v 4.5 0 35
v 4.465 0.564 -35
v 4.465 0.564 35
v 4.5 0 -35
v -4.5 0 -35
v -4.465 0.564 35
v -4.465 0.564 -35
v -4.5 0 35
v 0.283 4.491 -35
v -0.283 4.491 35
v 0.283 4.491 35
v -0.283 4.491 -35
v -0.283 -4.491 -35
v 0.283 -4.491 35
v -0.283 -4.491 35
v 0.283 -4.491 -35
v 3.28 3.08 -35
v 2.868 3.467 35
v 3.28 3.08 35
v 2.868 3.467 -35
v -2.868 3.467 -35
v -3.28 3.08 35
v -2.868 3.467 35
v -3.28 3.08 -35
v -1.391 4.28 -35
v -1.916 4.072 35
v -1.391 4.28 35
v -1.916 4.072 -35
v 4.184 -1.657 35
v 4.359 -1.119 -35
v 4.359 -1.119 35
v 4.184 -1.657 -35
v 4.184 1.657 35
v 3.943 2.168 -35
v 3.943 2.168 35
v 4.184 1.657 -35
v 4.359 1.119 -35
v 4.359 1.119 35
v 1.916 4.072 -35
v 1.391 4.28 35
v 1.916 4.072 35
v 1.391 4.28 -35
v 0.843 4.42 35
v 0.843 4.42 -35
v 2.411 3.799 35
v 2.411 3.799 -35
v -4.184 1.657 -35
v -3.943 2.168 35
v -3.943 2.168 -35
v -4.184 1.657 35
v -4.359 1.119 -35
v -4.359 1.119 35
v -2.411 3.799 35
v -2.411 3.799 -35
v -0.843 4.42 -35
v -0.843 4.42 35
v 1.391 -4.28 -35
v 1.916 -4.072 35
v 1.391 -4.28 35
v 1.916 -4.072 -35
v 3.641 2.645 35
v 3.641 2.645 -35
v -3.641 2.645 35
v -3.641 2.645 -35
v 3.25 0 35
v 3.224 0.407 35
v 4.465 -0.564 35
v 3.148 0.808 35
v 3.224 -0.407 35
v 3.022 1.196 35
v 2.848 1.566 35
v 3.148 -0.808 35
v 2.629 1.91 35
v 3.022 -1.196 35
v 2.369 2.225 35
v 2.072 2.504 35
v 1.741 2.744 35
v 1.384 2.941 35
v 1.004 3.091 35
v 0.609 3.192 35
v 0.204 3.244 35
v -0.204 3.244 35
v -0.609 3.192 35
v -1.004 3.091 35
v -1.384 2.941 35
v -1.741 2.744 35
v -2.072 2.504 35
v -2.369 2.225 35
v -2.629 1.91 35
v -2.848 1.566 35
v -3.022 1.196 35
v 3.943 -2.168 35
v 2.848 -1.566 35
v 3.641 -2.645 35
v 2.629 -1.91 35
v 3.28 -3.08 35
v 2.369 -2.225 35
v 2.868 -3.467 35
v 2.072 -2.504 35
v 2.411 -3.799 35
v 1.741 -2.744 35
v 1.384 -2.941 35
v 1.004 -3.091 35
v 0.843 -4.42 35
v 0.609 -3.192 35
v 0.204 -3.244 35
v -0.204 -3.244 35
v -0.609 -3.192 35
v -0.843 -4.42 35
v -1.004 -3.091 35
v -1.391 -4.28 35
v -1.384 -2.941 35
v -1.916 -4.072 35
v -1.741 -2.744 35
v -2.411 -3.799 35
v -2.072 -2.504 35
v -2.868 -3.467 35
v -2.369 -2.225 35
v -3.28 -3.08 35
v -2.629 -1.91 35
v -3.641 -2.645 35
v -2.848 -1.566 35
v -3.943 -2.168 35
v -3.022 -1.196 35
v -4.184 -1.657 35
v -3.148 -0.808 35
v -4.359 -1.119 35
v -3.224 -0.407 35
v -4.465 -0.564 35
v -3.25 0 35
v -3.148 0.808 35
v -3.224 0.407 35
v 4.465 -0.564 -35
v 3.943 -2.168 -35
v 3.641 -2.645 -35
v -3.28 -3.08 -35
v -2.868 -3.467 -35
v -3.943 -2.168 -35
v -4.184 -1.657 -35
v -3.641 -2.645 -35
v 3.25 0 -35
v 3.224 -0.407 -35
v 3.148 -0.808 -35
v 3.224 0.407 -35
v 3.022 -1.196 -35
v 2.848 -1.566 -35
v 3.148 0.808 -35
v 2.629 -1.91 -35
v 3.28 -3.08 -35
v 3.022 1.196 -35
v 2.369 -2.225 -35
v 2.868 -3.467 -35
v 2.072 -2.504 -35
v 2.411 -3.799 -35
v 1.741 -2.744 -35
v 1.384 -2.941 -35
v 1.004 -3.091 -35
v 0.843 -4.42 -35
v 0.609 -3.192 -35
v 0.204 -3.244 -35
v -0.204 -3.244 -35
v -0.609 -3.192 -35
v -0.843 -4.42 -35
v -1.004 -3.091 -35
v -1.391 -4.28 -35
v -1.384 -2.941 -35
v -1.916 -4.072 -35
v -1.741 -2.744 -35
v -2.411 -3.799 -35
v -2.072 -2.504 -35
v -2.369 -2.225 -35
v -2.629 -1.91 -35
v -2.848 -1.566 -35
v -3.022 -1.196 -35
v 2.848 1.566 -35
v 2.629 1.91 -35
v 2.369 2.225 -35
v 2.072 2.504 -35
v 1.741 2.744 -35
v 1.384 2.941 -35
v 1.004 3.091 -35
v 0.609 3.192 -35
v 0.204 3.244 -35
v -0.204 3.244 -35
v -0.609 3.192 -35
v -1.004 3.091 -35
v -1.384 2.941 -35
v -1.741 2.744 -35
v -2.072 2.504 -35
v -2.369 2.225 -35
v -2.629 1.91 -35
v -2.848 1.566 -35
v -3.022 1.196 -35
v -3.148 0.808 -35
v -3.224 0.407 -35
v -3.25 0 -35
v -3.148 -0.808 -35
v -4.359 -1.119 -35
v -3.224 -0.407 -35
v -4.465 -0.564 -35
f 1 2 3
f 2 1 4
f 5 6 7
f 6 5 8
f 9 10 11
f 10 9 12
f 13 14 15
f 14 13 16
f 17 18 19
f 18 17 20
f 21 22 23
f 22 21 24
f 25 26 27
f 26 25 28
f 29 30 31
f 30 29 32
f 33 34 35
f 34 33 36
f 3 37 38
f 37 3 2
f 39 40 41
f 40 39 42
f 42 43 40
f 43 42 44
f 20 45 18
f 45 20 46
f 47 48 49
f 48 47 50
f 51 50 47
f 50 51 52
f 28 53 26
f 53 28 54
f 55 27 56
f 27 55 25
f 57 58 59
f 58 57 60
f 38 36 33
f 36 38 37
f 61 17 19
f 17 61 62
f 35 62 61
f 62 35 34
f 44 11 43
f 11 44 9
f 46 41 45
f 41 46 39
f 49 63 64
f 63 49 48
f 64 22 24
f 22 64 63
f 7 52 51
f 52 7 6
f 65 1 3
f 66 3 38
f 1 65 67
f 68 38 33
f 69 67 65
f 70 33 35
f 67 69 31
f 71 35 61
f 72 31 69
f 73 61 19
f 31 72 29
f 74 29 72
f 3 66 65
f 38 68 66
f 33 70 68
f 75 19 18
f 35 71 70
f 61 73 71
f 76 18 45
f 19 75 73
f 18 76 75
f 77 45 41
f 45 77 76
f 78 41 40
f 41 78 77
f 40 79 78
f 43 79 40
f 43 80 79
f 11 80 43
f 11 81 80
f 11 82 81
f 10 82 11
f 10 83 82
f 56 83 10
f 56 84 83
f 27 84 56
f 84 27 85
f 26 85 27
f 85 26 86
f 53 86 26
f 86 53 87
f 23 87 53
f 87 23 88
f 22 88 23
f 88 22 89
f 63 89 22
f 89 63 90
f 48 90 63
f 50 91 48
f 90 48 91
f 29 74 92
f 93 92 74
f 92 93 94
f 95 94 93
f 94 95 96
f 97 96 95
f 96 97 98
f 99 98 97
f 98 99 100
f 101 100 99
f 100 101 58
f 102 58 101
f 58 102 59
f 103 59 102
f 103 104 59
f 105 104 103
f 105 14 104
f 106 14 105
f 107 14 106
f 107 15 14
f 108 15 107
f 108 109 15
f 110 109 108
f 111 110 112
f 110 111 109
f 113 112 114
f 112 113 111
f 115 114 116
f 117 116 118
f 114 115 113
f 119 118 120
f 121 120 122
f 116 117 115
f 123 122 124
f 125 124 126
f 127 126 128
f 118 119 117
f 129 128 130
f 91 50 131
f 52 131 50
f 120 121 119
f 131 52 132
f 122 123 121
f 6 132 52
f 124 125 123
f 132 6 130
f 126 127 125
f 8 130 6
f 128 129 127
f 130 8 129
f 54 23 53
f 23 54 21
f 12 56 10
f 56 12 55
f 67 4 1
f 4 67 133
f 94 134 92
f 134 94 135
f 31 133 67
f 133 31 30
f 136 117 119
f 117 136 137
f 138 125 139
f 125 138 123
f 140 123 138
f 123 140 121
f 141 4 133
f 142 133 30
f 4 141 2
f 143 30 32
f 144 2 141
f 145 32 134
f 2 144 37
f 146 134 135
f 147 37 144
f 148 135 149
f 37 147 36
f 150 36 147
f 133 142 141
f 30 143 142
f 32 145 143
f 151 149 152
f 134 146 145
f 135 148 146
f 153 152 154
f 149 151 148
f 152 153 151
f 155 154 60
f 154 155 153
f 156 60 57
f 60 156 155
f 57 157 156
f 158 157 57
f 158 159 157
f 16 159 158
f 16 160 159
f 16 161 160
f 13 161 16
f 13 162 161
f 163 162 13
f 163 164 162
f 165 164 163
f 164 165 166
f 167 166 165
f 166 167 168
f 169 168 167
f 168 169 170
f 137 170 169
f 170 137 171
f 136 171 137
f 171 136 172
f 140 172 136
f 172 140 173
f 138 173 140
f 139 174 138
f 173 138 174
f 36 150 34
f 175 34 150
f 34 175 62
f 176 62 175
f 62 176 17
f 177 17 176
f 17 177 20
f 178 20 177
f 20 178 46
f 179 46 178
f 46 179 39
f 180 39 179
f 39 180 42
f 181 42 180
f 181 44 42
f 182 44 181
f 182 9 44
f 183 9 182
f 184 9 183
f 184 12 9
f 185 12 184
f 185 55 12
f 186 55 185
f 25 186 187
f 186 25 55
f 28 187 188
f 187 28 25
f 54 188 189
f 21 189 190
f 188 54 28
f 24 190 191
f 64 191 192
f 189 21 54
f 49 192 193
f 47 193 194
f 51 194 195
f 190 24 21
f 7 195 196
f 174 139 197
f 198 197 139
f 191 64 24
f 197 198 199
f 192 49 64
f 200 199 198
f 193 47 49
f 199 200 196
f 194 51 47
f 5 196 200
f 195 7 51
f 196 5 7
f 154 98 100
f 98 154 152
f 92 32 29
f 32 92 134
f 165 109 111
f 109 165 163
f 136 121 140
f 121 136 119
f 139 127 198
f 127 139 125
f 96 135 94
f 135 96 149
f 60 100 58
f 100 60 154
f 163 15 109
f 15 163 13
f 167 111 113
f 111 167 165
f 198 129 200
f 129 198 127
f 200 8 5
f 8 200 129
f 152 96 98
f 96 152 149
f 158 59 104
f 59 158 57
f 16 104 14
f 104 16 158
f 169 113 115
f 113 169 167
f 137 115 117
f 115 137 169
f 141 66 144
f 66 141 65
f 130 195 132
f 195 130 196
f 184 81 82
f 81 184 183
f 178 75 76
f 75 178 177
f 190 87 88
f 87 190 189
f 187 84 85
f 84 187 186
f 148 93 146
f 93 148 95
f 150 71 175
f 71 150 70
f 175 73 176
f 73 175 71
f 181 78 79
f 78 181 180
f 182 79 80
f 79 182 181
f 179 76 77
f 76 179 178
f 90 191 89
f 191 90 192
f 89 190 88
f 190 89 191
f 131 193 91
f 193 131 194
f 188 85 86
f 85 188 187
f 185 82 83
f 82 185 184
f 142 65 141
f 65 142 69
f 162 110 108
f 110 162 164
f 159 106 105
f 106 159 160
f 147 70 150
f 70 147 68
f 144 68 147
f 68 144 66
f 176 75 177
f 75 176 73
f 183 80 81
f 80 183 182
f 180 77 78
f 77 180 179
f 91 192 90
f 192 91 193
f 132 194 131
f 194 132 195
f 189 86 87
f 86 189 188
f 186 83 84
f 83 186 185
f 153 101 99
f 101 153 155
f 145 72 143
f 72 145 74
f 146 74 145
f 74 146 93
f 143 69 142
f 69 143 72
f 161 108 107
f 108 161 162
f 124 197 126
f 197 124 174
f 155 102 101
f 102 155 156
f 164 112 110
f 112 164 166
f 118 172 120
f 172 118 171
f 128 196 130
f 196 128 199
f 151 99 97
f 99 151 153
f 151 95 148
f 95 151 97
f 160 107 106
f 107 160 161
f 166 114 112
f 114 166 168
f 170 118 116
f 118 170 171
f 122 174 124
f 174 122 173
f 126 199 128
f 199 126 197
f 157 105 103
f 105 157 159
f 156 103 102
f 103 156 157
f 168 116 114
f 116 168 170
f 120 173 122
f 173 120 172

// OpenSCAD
$fn = 50;


difference() {
	union() {
		translate(v = [0, 0, -35.0000000000]) {
			cylinder(h = 70, r = 4.5000000000);
		}
	}
	union() {
		translate(v = [0, 0, -100.0000000000]) {
			cylinder(h = 200, r = 3.2500000000);
		}
	}
}
